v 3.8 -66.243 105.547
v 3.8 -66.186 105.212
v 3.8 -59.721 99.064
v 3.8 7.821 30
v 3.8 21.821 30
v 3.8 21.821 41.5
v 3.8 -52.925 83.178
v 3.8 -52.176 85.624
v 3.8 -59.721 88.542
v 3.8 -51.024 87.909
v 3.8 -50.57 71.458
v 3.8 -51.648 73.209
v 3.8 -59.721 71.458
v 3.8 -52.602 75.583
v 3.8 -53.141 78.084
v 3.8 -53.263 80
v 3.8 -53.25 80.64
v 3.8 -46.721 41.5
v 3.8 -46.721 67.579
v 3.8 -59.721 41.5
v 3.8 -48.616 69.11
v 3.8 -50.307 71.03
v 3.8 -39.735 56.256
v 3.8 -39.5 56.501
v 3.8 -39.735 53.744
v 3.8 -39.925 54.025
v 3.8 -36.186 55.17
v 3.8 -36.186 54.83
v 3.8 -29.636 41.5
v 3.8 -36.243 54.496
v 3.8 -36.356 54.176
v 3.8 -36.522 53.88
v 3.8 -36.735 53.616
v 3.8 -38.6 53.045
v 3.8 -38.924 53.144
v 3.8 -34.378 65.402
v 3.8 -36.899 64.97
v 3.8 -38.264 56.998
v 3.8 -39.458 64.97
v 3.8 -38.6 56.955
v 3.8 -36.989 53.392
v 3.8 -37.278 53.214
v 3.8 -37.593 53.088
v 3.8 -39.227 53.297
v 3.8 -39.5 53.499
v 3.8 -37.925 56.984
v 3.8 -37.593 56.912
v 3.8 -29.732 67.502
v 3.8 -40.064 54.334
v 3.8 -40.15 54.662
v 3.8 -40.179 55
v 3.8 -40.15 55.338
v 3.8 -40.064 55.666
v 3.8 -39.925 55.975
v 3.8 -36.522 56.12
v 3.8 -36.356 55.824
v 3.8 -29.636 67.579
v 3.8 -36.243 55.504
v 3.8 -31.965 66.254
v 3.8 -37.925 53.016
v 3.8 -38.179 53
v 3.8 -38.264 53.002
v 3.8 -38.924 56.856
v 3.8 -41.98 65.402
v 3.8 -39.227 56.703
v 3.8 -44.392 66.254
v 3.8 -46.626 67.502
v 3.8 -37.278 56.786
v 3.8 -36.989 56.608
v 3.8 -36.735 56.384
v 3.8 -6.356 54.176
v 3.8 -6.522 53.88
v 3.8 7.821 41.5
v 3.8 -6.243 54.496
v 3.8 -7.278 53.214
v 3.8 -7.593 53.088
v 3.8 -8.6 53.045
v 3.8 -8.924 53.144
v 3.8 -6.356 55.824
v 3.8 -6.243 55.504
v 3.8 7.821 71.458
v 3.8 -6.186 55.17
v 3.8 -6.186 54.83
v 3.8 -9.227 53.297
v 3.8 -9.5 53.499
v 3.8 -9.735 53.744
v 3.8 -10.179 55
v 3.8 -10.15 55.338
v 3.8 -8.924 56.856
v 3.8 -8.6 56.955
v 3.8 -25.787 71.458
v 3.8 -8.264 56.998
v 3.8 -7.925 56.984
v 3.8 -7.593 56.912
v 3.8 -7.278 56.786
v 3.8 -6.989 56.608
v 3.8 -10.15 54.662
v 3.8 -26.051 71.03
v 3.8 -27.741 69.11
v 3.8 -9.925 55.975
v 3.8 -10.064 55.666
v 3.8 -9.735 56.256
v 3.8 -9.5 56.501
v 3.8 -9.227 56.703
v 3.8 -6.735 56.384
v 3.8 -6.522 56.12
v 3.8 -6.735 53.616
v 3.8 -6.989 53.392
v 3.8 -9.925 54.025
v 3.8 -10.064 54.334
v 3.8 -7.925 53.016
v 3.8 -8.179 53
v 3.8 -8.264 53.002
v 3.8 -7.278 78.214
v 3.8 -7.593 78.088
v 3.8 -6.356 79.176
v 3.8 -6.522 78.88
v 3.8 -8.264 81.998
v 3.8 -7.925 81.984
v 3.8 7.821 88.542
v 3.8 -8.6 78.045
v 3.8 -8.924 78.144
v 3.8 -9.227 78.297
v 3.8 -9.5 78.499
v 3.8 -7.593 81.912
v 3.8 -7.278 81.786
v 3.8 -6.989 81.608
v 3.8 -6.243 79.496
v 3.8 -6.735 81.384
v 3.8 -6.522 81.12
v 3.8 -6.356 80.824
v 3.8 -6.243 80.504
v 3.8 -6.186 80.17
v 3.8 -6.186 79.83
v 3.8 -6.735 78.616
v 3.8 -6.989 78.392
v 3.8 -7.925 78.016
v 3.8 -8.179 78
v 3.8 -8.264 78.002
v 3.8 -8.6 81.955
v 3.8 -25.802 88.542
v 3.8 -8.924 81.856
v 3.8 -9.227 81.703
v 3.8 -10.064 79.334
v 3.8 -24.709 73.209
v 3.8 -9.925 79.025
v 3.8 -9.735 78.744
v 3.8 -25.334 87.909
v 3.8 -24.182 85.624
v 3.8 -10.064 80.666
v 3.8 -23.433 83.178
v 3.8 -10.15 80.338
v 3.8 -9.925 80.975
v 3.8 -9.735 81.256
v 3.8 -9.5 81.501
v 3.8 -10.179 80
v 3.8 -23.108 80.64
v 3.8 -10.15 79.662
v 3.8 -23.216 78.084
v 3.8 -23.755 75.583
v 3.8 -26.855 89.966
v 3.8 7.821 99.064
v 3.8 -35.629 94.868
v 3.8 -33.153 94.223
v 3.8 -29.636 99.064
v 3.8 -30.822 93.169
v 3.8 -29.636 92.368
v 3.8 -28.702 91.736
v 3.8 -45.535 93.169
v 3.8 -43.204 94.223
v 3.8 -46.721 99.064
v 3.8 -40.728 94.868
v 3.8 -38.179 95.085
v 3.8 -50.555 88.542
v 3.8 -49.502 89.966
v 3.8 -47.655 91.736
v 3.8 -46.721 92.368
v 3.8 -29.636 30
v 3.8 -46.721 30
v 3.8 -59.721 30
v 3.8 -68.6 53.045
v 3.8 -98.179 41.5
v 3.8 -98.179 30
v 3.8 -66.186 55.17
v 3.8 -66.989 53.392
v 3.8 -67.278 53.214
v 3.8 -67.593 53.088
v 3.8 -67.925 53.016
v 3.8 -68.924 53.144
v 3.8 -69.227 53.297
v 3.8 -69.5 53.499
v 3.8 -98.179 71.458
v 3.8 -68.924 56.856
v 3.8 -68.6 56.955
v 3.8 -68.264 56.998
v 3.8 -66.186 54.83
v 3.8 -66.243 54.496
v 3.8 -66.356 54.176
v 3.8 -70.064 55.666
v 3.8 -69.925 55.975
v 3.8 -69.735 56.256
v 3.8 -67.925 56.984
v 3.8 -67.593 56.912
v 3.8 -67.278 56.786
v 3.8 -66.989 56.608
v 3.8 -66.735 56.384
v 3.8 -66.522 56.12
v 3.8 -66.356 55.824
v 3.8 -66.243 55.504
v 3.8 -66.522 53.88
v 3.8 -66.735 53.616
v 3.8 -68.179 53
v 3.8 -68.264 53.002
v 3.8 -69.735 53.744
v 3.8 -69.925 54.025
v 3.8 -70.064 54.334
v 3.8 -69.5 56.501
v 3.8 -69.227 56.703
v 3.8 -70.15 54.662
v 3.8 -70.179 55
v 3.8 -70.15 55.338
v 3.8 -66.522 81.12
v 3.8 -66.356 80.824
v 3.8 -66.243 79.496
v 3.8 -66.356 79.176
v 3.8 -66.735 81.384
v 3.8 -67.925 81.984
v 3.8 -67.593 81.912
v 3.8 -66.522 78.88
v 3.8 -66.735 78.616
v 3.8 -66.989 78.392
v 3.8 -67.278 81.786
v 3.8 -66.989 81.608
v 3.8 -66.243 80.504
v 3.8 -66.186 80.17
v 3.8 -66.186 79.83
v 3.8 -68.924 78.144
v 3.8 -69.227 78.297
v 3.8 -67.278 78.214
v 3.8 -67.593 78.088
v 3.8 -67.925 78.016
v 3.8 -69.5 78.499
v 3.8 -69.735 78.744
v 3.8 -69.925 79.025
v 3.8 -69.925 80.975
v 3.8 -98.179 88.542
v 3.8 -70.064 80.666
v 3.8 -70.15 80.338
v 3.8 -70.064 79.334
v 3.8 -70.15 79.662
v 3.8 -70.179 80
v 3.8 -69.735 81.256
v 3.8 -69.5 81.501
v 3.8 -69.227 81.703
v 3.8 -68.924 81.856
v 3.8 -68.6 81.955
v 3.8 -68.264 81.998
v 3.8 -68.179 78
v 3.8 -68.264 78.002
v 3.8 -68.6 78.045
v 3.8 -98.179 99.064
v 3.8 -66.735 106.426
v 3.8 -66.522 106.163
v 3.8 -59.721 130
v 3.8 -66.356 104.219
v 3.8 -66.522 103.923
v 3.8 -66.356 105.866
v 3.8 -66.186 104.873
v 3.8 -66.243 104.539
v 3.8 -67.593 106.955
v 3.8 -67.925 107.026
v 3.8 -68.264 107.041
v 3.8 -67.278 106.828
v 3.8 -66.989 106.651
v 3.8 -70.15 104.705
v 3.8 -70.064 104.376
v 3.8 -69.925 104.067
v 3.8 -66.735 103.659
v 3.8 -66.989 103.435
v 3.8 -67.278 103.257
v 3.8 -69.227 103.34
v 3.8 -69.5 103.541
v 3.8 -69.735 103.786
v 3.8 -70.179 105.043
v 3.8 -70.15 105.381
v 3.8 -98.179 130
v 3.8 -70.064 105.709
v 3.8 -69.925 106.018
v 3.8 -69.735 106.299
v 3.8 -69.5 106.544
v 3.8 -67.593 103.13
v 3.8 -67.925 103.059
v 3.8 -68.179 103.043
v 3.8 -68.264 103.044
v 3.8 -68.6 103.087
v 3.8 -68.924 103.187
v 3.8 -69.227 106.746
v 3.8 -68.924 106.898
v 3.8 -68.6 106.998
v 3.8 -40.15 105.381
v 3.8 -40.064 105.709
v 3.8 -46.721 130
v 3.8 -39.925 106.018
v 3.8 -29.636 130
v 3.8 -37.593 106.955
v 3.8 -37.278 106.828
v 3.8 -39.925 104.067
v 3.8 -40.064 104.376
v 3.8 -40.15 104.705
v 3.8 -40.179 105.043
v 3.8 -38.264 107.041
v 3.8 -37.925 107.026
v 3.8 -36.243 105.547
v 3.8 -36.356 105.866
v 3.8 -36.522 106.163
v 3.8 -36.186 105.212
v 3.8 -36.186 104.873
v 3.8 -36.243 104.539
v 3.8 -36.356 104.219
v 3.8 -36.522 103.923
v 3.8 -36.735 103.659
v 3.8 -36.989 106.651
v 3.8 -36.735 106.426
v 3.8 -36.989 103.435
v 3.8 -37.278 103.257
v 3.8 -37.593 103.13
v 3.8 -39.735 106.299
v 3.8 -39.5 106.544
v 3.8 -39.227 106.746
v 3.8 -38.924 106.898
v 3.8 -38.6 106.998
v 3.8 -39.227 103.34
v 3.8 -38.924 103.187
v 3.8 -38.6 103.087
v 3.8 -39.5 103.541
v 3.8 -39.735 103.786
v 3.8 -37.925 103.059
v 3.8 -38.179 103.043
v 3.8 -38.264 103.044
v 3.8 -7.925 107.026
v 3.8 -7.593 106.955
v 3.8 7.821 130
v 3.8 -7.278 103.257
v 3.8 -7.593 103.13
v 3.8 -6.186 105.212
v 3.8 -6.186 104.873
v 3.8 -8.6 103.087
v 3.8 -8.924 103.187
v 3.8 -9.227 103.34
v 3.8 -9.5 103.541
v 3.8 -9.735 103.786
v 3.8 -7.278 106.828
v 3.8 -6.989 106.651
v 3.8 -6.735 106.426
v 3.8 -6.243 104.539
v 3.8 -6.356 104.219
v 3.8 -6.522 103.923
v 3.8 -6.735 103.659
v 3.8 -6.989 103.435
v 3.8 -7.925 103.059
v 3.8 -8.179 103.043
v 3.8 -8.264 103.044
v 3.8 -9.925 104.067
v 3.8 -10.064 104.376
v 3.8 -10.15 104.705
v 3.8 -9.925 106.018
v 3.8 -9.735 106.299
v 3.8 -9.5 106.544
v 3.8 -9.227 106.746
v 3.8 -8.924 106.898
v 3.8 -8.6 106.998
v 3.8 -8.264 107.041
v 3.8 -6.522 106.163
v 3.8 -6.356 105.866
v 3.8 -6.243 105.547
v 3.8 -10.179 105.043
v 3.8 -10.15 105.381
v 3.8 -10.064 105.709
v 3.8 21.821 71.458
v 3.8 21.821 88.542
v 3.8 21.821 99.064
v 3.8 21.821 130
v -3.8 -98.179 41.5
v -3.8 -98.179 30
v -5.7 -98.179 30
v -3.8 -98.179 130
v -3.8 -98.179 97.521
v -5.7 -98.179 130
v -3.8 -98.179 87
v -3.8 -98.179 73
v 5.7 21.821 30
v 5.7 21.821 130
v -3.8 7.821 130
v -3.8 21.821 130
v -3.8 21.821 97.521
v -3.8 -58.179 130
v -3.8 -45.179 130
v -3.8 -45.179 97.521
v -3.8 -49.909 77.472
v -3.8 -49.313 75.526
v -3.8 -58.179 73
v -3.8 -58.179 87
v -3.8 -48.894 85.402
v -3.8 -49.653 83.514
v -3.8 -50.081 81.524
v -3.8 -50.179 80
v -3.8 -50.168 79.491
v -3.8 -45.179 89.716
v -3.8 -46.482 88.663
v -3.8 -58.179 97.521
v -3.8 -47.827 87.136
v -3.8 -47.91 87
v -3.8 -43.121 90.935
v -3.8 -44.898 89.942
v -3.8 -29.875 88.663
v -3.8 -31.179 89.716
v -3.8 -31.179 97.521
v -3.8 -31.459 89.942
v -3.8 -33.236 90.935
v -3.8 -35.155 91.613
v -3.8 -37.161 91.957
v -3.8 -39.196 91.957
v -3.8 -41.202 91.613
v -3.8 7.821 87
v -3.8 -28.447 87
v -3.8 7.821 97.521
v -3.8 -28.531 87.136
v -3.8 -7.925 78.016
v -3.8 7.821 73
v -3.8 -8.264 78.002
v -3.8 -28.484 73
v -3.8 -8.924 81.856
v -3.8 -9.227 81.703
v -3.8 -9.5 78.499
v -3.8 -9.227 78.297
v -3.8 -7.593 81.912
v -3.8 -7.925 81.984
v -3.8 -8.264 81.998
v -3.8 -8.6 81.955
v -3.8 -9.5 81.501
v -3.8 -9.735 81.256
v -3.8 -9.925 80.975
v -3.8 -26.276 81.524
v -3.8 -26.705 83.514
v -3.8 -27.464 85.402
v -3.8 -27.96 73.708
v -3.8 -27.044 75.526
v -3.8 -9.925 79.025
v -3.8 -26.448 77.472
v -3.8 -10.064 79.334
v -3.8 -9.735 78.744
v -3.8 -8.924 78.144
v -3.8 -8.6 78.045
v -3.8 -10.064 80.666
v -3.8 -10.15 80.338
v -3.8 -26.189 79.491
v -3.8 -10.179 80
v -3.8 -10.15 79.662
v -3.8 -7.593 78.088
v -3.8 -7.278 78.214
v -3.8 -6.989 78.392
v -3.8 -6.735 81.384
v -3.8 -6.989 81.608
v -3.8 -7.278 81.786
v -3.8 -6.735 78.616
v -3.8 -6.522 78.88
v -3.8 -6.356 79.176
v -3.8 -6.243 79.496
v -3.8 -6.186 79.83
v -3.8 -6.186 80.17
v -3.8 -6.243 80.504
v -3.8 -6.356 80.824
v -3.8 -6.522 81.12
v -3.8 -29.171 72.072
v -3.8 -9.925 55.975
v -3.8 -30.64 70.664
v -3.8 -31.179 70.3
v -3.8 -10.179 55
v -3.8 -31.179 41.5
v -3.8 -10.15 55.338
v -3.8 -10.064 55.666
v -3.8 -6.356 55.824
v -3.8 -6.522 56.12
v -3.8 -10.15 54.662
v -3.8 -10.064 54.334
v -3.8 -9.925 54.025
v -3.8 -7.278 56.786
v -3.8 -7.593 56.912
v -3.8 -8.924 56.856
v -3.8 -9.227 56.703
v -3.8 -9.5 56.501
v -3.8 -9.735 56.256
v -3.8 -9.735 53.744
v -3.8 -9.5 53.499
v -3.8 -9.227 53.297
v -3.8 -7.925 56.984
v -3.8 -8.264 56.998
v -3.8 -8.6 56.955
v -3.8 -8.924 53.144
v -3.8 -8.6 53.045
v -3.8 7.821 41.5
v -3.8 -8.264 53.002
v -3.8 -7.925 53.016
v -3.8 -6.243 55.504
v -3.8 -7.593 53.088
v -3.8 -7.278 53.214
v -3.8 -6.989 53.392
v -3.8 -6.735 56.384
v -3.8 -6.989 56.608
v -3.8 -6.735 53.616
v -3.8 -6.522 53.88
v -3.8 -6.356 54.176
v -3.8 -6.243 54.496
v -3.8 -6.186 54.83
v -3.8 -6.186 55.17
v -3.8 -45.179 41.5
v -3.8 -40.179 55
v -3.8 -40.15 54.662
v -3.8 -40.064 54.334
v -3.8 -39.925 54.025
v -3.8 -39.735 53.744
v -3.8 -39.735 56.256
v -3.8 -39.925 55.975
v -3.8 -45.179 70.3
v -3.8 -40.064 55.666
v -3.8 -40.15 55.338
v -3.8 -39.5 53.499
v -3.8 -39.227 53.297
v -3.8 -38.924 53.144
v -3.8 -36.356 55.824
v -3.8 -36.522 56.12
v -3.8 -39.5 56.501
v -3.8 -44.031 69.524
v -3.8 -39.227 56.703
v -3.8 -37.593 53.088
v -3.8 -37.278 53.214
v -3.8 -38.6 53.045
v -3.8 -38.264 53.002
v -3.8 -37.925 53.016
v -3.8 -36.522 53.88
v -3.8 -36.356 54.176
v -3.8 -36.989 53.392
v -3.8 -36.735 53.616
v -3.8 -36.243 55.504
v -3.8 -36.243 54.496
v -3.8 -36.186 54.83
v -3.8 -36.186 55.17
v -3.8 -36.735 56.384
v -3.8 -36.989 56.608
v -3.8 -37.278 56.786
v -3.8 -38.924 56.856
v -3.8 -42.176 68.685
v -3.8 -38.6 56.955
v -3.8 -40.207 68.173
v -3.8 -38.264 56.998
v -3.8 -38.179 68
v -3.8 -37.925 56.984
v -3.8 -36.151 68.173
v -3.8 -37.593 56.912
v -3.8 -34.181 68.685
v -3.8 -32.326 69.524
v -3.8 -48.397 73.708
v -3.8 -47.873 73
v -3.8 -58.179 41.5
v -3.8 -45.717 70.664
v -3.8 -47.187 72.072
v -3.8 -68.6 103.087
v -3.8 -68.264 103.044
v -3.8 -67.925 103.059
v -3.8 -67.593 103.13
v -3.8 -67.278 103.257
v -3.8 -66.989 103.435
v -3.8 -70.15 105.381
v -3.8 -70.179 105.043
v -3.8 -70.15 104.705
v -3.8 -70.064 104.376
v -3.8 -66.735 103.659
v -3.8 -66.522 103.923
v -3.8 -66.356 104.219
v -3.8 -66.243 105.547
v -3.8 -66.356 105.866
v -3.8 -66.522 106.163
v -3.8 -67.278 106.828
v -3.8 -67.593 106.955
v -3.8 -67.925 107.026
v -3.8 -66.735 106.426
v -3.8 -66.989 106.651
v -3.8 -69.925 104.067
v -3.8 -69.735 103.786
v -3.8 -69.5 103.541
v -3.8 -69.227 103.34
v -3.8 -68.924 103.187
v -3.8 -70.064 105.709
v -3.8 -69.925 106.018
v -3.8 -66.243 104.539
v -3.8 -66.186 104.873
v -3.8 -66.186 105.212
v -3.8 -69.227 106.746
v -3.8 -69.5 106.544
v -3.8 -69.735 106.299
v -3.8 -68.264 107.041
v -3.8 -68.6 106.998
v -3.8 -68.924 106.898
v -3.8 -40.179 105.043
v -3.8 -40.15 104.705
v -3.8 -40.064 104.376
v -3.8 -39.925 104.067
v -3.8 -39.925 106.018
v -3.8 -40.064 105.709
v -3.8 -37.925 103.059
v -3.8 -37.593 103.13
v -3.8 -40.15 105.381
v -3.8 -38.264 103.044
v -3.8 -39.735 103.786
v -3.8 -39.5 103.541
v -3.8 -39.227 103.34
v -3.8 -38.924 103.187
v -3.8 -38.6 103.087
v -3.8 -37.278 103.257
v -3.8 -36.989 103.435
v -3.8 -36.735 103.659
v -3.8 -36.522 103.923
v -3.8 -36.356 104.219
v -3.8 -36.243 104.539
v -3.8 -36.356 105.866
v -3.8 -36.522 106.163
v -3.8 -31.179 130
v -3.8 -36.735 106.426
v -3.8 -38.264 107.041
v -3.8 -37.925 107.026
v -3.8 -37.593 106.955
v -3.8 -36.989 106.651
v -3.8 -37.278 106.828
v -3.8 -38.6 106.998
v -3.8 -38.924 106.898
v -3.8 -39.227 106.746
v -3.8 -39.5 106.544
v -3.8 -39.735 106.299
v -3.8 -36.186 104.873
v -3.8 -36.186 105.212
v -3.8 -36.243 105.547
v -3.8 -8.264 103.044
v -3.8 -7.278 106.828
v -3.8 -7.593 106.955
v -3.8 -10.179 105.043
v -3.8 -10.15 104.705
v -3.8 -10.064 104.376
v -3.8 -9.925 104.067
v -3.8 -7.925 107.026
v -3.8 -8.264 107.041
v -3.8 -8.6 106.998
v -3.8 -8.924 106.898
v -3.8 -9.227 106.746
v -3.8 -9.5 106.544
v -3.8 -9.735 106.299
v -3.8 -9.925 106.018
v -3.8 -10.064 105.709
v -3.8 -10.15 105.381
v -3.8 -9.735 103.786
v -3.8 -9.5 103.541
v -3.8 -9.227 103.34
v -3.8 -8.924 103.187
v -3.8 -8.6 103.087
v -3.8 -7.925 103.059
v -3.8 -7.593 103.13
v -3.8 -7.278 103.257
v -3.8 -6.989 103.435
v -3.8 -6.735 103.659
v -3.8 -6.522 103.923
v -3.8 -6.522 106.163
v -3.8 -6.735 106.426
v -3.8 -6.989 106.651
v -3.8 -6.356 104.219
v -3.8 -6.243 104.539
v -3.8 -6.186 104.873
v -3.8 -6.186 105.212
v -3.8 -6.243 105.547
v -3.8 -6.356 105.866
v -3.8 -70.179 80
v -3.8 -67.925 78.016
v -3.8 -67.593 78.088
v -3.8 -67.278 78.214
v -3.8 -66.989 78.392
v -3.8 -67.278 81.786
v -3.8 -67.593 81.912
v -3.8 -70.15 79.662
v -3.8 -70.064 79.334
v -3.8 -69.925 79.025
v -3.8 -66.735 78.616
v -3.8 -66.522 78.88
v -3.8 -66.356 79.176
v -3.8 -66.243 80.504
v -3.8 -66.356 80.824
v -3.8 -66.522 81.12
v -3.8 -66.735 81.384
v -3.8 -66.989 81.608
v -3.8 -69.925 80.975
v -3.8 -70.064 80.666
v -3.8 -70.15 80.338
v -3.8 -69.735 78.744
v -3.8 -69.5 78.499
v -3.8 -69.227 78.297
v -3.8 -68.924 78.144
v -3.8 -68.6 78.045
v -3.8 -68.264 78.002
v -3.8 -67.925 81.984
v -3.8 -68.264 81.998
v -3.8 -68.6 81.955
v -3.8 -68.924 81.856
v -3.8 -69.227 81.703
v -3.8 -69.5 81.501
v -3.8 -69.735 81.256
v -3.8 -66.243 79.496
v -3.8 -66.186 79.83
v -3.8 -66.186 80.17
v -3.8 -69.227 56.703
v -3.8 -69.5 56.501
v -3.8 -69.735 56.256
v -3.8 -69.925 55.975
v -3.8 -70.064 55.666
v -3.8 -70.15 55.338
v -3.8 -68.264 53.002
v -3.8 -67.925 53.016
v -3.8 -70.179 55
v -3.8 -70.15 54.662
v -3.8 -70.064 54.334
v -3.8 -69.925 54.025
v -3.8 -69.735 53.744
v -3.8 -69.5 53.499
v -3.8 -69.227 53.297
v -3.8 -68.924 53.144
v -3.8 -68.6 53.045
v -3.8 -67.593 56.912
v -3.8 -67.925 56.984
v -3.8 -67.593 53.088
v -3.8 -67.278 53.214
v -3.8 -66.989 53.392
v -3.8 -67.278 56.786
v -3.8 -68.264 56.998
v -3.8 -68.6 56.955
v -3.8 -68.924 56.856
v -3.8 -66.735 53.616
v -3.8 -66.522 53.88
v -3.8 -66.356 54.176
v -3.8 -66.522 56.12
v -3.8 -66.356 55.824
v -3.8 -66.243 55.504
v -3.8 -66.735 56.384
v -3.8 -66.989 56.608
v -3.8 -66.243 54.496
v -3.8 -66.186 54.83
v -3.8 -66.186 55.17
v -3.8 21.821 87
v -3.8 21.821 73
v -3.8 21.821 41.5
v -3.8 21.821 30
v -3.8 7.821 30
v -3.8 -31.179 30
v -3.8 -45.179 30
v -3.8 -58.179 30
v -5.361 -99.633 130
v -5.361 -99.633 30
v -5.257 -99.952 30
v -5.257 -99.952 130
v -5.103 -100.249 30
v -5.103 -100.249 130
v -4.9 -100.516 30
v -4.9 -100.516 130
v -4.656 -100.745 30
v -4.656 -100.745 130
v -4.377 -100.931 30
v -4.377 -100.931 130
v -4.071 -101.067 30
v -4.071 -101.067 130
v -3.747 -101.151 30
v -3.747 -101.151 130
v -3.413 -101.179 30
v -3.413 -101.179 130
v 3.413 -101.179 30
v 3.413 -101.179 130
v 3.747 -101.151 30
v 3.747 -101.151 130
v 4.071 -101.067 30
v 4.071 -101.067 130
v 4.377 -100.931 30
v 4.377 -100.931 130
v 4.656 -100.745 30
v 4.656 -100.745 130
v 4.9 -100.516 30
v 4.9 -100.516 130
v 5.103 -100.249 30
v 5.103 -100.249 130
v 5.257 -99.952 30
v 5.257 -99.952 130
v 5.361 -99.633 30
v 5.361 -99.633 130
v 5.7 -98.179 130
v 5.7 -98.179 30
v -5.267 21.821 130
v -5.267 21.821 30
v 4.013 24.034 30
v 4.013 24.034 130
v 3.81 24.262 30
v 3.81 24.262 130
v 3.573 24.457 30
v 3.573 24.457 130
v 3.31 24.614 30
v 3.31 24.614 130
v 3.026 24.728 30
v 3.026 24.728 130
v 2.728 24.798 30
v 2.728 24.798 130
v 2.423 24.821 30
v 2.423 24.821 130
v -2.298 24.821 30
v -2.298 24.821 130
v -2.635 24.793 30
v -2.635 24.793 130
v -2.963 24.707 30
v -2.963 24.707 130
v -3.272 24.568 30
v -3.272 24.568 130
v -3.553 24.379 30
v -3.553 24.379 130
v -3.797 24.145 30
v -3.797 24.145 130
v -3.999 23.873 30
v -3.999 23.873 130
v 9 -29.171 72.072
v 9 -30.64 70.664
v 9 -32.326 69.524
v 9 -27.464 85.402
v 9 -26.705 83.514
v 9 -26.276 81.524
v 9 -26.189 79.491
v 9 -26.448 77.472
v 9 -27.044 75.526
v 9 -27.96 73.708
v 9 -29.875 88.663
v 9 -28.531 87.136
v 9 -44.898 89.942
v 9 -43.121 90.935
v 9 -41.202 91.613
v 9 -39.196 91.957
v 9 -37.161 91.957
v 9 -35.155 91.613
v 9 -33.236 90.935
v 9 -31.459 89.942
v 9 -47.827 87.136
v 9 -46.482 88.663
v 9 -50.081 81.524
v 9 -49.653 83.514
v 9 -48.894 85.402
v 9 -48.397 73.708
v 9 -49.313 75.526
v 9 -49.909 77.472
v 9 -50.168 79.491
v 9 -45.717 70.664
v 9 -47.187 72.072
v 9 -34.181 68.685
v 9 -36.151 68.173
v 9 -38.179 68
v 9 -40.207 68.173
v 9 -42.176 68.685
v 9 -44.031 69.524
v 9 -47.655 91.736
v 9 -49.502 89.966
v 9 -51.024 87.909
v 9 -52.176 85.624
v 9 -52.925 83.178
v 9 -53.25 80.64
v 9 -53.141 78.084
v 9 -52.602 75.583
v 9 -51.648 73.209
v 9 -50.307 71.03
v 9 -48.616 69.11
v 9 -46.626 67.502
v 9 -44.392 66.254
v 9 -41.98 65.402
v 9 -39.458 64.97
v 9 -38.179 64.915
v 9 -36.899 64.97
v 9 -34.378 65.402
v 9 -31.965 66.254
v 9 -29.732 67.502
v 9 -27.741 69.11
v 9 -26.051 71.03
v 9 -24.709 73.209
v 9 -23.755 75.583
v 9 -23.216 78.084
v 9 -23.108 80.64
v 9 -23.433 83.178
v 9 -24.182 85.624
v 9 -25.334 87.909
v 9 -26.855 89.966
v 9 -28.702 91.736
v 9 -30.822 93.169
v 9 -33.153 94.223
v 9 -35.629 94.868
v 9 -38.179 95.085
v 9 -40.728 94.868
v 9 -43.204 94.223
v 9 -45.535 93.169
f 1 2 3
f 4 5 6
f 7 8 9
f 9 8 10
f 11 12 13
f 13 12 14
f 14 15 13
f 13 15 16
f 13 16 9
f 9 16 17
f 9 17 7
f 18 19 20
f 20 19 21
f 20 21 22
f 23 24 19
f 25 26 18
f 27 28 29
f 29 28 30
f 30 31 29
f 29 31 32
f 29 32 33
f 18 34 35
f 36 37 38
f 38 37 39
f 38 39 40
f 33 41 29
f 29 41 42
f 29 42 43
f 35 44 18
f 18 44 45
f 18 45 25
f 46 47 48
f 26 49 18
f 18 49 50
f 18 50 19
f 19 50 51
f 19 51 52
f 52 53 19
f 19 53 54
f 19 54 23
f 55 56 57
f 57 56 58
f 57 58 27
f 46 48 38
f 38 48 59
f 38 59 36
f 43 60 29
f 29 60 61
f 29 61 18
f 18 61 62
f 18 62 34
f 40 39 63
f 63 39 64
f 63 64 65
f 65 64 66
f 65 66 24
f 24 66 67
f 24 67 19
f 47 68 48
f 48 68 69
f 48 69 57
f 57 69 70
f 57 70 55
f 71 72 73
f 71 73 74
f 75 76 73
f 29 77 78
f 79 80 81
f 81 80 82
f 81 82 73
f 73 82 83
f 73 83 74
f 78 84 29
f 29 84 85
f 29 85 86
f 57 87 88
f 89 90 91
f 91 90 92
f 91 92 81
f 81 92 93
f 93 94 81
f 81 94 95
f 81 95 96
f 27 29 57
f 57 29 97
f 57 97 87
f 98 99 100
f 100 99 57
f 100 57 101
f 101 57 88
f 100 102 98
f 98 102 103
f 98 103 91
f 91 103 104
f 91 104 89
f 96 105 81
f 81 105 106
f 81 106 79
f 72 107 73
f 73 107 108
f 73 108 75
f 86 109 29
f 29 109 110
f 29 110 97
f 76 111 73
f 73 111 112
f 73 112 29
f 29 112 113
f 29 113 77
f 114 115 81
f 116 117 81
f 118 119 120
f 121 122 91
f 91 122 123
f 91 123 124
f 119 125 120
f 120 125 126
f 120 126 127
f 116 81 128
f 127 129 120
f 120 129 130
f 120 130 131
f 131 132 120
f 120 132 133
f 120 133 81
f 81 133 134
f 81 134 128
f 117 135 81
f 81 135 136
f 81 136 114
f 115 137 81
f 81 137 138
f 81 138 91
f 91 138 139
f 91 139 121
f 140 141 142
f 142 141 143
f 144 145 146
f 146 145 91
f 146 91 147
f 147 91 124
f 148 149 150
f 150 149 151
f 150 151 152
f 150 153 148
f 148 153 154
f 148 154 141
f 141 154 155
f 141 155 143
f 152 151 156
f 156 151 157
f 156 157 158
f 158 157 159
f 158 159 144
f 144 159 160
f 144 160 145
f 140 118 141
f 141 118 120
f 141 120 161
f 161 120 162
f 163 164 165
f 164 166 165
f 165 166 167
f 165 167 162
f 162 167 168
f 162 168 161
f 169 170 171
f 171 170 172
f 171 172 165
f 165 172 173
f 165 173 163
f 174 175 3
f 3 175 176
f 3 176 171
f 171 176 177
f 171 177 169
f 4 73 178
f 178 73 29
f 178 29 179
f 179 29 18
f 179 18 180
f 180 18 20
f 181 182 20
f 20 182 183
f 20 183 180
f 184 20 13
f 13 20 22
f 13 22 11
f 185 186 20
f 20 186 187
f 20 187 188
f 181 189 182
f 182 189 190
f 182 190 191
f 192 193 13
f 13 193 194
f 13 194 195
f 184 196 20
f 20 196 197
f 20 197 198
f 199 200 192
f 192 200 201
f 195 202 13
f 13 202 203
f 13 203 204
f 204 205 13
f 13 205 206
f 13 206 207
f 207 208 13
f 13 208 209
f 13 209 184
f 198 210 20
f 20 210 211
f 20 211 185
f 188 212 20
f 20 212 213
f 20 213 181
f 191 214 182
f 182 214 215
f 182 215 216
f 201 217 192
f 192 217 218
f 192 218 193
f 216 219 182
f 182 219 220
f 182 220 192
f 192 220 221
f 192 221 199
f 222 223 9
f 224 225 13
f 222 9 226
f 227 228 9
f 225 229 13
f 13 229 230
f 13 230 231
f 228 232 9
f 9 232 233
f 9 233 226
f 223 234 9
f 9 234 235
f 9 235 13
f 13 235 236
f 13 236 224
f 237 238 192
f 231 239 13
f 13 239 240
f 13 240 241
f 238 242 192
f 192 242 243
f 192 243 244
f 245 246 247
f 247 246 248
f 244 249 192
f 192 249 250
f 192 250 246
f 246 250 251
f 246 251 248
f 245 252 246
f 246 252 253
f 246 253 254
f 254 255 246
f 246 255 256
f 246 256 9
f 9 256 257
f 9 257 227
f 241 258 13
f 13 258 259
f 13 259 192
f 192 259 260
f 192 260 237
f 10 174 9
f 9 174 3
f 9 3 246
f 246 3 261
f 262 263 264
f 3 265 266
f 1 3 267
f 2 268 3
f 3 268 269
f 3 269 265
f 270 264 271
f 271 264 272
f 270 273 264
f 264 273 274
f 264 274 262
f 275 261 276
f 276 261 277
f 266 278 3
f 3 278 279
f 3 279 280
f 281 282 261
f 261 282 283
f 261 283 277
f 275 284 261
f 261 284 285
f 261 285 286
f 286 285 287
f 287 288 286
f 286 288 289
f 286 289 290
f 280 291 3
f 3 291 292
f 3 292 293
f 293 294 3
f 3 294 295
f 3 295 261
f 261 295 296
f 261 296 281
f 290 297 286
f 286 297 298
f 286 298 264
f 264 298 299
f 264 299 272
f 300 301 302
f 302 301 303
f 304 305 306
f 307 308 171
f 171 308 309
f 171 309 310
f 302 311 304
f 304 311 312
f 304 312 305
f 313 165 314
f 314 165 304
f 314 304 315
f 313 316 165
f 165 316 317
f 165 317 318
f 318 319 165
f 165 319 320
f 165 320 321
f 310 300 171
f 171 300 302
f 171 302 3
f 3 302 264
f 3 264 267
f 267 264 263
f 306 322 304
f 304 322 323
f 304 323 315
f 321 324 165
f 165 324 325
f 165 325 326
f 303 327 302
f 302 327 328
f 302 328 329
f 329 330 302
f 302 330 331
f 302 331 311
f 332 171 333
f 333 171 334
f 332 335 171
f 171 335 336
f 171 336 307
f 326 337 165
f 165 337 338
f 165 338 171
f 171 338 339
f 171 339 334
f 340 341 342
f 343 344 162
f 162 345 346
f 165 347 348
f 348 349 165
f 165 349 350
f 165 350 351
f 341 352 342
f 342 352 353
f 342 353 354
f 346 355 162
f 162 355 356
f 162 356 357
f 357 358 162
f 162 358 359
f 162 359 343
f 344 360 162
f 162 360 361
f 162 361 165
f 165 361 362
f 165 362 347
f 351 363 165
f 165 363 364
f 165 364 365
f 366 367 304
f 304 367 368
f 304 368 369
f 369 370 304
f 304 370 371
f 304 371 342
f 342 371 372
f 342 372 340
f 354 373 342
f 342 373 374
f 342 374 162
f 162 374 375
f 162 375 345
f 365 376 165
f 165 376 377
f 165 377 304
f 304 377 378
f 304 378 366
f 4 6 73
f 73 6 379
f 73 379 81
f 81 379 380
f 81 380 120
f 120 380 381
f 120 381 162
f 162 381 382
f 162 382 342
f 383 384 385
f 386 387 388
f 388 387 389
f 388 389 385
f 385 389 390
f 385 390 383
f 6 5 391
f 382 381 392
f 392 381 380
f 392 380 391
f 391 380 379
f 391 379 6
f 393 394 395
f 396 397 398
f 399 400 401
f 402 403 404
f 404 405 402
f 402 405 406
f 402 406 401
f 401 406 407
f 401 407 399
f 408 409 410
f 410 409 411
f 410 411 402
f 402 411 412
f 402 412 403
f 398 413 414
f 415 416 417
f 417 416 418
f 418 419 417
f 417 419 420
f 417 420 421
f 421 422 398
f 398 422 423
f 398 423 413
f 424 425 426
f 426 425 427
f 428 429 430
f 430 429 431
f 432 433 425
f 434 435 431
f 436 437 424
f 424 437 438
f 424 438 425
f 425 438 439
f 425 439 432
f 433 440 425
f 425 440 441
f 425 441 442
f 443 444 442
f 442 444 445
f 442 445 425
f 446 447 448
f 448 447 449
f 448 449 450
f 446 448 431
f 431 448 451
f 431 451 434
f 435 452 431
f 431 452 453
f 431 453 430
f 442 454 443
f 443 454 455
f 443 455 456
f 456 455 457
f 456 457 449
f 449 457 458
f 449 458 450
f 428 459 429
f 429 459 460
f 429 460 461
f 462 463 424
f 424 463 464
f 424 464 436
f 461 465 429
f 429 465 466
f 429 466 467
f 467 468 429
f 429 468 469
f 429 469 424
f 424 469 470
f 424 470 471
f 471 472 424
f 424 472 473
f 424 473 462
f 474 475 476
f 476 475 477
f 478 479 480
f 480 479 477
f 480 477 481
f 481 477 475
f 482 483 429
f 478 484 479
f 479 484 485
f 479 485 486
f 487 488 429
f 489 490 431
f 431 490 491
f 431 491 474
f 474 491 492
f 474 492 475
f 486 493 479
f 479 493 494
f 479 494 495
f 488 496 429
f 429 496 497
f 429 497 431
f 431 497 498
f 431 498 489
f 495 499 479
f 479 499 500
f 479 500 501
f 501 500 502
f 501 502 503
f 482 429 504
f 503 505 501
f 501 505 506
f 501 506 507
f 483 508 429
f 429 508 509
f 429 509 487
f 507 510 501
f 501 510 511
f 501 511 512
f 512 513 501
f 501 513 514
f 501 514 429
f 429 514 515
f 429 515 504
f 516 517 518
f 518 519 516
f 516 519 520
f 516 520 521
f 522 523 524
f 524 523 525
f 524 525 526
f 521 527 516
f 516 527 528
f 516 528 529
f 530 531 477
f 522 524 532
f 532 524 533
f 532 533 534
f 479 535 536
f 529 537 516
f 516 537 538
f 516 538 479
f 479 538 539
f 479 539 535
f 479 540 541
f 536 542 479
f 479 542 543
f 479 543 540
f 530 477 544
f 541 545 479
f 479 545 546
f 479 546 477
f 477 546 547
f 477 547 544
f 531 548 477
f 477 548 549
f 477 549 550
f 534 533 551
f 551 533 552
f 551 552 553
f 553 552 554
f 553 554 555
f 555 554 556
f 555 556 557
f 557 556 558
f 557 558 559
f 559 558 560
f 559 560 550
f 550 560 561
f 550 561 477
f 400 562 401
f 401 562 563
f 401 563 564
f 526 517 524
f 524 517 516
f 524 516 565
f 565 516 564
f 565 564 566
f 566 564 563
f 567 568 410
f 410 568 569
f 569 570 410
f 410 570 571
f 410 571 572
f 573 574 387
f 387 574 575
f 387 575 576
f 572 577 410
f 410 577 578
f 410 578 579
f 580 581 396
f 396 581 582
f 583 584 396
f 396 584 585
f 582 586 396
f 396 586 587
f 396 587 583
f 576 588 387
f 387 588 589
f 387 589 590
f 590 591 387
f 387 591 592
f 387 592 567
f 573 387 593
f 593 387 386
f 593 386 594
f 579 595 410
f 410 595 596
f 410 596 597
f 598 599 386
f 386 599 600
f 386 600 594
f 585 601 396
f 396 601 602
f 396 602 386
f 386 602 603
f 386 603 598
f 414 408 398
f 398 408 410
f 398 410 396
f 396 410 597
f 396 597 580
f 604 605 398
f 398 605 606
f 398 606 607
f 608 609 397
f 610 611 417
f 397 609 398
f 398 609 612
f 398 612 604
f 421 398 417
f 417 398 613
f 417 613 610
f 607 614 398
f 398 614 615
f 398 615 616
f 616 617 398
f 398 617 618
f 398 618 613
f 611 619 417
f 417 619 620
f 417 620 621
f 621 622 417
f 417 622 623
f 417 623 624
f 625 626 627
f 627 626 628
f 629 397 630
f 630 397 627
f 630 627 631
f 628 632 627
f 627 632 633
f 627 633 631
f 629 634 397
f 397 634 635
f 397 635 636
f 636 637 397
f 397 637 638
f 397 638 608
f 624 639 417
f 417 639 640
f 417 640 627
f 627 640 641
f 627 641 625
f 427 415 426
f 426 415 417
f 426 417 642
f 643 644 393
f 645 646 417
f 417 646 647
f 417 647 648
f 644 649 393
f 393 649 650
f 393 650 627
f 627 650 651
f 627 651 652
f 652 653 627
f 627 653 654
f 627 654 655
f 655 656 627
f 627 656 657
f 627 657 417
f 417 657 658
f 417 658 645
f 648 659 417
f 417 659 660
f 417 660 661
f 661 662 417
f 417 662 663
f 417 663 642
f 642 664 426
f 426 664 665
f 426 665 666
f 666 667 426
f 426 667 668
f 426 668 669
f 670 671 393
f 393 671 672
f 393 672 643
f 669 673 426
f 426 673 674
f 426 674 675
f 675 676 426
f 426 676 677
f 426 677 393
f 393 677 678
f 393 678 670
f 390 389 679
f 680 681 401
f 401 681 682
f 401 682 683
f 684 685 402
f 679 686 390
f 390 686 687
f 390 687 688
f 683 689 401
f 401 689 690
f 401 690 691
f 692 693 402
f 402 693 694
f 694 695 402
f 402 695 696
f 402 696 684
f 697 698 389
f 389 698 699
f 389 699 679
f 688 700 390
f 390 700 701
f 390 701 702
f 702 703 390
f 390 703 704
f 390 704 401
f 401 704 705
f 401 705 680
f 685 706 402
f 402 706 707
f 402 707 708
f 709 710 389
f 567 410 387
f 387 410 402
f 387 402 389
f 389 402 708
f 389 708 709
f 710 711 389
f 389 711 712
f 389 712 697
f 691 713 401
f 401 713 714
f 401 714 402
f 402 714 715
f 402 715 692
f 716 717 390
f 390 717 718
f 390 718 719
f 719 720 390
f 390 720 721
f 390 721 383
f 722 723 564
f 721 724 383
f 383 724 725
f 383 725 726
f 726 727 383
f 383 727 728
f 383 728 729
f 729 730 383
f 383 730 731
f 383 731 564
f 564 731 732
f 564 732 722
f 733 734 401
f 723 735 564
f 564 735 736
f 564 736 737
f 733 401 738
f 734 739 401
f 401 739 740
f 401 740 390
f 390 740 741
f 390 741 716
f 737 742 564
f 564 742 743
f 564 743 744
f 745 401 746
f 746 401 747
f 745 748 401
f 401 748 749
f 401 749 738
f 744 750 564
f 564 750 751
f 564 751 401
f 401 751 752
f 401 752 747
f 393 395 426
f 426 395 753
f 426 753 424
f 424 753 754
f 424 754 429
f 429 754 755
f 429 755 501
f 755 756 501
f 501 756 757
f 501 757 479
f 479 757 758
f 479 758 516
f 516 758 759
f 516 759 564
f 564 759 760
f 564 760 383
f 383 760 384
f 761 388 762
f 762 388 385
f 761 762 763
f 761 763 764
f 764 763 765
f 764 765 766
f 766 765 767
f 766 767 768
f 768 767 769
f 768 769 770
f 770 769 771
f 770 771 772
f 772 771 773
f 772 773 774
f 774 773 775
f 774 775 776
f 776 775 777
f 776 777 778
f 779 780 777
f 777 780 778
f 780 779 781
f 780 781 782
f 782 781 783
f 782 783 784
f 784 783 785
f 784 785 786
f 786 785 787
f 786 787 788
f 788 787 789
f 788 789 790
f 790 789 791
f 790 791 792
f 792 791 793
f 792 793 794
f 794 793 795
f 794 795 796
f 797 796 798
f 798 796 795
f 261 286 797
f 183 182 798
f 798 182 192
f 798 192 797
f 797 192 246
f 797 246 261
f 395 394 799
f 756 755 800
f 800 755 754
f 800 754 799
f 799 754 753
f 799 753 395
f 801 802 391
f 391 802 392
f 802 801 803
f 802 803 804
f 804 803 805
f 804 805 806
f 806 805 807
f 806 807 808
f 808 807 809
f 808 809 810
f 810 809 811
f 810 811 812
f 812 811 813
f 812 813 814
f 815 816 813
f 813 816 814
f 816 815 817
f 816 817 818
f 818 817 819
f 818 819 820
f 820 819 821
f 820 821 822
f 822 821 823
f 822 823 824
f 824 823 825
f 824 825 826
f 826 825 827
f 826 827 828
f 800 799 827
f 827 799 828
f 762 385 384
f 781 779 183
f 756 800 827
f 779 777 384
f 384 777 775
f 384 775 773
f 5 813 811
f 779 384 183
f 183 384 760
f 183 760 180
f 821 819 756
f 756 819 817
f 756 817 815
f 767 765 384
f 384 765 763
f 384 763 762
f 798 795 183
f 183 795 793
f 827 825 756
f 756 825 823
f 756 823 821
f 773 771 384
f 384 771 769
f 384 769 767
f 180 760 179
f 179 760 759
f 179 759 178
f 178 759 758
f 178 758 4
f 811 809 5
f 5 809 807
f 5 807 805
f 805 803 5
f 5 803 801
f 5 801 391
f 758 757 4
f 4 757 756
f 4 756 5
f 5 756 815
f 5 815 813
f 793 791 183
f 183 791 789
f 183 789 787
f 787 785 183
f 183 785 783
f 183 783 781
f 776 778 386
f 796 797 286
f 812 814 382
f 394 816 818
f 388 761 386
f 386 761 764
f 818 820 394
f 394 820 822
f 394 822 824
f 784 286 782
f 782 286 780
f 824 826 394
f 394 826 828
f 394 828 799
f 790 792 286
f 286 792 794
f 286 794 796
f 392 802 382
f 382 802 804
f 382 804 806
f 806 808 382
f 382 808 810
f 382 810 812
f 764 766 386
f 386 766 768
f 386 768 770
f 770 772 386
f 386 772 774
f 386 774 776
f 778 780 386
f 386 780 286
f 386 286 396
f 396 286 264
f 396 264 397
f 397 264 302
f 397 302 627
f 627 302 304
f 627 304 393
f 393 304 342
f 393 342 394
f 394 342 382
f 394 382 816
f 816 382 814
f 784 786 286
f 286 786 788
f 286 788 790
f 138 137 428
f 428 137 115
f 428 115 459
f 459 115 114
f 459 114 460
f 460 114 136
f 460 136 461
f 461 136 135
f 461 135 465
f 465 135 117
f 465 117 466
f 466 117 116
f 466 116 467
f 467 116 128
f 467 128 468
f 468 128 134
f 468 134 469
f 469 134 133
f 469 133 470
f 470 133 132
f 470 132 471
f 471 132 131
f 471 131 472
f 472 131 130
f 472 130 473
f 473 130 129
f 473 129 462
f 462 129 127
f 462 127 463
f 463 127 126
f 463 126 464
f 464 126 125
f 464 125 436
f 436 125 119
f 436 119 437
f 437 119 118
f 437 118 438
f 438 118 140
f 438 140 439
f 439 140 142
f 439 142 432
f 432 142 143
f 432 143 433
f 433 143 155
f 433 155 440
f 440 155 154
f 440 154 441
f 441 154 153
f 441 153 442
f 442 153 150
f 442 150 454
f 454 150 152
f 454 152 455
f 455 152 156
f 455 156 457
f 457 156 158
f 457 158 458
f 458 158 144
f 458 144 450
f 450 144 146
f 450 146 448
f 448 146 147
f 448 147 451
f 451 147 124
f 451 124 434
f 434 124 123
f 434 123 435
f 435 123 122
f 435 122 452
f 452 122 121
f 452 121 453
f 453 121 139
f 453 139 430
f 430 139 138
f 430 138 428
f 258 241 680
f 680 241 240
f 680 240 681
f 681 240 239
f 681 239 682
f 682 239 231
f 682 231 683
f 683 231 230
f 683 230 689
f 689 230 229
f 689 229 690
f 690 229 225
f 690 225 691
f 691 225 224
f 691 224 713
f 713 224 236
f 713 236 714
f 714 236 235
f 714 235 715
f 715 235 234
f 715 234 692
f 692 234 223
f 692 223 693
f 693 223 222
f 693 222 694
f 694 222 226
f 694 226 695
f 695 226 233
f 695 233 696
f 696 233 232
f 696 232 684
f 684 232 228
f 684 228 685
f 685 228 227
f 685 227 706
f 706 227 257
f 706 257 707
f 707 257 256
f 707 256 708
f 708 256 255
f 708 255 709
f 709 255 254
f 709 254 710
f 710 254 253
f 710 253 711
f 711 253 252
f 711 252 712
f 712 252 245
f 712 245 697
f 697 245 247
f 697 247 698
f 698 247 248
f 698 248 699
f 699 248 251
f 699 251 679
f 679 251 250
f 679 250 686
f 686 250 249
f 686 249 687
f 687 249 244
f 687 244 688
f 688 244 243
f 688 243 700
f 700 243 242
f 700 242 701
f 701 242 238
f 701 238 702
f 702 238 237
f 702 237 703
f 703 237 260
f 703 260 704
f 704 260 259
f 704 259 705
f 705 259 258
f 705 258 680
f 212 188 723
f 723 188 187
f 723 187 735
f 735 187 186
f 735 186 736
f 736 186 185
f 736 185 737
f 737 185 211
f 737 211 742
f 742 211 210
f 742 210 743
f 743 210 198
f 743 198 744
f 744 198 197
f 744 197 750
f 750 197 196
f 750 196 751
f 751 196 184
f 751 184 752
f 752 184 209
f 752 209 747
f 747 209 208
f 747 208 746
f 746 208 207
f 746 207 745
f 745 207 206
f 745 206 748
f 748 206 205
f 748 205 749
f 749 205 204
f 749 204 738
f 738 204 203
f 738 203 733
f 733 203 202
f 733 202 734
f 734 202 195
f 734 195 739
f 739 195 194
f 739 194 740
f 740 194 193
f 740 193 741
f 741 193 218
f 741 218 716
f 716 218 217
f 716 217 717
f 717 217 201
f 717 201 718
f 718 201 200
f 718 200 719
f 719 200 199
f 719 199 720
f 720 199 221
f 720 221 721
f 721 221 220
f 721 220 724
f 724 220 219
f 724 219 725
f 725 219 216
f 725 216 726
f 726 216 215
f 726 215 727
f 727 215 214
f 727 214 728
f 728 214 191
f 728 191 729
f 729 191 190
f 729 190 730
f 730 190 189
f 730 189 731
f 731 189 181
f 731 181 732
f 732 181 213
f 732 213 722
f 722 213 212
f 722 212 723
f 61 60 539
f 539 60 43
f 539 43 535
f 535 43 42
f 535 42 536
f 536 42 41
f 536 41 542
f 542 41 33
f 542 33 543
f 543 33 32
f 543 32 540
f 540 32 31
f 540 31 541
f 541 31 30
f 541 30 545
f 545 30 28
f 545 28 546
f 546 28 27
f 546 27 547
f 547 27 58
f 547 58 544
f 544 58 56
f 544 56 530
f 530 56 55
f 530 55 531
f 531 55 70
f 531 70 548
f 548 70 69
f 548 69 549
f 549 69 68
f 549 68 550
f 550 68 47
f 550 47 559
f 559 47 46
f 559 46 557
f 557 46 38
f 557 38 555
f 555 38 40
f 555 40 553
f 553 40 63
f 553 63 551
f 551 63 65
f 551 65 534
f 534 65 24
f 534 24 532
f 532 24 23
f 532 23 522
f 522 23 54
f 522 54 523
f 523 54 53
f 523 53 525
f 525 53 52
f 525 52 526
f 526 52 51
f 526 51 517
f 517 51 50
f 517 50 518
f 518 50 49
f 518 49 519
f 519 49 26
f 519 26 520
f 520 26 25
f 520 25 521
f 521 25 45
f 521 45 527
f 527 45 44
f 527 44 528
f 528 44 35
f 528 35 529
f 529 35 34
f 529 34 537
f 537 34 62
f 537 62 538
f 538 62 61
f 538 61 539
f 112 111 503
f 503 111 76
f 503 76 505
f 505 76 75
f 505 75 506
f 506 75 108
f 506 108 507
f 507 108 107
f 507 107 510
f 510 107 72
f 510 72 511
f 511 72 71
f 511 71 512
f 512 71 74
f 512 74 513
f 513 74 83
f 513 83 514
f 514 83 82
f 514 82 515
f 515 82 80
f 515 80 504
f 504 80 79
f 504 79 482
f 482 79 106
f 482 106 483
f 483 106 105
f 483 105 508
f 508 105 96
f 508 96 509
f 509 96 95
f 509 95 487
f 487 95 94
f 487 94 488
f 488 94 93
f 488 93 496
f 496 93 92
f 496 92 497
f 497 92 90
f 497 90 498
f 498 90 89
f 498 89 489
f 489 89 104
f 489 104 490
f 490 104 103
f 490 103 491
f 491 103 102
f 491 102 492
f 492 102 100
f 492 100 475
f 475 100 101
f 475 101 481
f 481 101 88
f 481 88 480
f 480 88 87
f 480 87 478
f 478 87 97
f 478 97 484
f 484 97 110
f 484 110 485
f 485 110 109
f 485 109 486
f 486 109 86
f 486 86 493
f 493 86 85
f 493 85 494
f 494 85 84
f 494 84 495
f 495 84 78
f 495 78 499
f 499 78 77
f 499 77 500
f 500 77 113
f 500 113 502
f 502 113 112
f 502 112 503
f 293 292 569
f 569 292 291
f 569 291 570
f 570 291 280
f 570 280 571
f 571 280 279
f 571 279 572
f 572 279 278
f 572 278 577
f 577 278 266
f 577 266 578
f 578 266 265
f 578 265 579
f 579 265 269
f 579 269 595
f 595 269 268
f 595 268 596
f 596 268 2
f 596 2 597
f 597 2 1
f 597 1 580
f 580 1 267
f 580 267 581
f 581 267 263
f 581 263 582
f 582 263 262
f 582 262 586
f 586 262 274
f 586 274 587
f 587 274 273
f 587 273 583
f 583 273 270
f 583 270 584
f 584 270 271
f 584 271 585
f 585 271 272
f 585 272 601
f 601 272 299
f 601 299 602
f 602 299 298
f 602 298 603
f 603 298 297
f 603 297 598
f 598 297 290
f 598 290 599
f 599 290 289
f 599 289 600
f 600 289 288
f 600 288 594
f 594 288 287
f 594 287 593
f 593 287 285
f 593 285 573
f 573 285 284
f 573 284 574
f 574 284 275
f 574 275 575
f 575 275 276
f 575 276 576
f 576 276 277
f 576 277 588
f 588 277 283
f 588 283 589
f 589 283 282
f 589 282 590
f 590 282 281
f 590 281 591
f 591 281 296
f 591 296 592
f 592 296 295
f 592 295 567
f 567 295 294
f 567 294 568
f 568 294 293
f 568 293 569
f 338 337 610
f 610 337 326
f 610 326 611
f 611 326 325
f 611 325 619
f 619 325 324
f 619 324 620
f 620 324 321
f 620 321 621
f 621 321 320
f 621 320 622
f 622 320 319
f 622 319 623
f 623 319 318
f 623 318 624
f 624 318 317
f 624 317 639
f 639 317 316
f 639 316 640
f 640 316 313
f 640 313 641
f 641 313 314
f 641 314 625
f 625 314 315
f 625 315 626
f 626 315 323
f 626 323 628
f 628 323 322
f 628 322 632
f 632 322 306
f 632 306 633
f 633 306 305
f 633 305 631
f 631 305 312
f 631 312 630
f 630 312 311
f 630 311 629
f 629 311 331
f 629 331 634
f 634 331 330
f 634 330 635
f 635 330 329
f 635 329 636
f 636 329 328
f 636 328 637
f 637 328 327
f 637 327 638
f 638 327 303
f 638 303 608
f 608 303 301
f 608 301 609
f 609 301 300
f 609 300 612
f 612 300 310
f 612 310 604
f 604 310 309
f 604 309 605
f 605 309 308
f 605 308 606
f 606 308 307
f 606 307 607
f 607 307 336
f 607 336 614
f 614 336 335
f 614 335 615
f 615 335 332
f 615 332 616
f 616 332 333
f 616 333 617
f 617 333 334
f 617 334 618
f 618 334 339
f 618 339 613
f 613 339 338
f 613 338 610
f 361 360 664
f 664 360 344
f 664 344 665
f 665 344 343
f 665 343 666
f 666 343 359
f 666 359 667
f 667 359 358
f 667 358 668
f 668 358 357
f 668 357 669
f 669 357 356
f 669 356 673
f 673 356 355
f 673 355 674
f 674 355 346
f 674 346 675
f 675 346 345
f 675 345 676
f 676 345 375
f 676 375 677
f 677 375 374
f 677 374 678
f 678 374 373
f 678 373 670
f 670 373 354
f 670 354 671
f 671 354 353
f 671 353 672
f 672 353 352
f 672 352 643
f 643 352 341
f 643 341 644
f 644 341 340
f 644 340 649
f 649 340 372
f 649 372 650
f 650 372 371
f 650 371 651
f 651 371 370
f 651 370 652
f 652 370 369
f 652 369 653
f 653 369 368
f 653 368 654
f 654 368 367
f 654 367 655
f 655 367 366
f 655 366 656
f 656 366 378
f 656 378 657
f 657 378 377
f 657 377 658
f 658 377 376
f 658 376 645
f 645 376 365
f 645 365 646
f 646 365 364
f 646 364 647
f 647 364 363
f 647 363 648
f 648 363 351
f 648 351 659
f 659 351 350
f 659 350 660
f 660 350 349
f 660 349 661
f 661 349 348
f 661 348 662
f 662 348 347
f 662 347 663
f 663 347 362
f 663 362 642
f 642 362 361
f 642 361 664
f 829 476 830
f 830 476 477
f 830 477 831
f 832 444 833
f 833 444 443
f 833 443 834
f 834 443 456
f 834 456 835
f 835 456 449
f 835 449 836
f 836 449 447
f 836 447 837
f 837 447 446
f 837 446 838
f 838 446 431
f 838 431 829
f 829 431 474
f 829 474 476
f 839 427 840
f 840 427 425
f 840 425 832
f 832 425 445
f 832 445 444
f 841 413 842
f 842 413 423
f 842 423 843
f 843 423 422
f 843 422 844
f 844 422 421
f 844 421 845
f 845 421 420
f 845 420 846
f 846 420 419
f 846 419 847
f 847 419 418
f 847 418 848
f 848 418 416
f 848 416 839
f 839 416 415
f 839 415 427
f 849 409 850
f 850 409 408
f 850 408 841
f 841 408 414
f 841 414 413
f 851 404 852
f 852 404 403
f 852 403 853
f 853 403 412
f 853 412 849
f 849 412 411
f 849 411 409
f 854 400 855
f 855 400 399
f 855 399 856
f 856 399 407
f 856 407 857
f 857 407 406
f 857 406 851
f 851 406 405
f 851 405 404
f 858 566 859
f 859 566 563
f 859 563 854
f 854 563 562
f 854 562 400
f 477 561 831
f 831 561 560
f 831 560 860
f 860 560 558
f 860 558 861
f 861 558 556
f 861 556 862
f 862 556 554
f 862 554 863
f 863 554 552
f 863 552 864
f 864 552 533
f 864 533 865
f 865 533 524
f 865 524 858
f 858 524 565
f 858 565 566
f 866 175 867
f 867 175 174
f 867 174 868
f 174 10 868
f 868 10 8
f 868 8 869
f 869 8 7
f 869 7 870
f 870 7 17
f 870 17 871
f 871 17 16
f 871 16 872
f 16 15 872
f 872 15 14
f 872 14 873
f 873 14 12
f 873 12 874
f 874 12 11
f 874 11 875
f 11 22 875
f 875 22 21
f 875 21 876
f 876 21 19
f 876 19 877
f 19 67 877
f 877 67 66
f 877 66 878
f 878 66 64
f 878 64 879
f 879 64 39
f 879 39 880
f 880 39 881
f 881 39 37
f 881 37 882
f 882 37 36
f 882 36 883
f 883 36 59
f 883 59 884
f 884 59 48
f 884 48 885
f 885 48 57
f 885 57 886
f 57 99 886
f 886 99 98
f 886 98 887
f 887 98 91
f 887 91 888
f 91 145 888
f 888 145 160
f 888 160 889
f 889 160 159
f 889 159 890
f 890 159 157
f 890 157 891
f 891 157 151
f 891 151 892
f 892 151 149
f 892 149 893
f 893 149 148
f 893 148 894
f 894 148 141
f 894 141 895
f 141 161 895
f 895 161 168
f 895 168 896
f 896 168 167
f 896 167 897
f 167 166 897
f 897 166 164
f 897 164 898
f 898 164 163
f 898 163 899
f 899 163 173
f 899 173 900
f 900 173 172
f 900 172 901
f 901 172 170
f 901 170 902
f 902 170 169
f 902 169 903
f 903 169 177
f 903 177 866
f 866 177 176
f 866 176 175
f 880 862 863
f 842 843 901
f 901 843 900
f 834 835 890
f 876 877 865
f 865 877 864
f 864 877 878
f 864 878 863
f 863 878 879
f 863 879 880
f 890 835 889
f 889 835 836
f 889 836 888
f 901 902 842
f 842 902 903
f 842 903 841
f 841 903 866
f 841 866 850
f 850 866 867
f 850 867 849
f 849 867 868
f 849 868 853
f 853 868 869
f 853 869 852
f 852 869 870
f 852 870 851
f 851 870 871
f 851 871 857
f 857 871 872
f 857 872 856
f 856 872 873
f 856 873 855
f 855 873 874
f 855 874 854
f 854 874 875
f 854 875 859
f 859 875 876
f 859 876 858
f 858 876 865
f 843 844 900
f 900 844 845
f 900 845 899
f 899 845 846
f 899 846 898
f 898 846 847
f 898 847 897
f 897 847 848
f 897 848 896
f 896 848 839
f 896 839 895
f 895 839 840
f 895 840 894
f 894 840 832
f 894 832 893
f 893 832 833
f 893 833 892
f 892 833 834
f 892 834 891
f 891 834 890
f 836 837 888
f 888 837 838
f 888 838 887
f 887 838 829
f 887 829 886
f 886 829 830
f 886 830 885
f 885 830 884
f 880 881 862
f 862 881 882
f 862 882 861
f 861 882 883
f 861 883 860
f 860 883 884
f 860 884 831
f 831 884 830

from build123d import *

# Parameters (mm, degrees)
RESSALTO_EXTRUS_O1_DEPTH   = 160
ESBO_O2_W                  = 7.6
ESBO_O2_H                  = 120
CORTE_EXTRUS_O1_DEPTH      = 30
CORTE_EXTRUS_O2_DEPTH      = 30
F_3DSKETCH3_R              = 2
CORTE_EXTRUS_O3_DEPTH      = 70
ESBO_O3_W                  = 45.015344868
ESBO_O3_H                  = 129.478543367
ESBO_O3_W_2                = 37.192593828
CORTE_EXTRUS_O4_DEPTH      = 31.510345968
CORTE_EXTRUS_O4_DEPTH_BACK = 38
ESBO_O4_R                  = 12
CORTE_EXTRUS_O5_DEPTH      = 52.510345968
CORTE_EXTRUS_O5_DEPTH_BACK = 54
ESBO_O5_R                  = 15.084668413
ESBO_O5_R_2                = 12
RESSALTO_EXTRUS_O3_DEPTH   = 9


with BuildPart() as part:
    # Esboço1 → Ressalto-extrusão1 (new body)
    with BuildSketch(Plane.XY):
        with BuildLine():
            Line((-3.8, 21.821375341), (-3.8, -98.178624659))
            Line((-3.8, -98.178624659), (-5.7, -98.178624659))
            Line((-5.7, -98.178624659), (-5.360626179, -99.63308389))
            ThreePointArc((-5.360626179, -99.63308389), (-4.656141559, -100.745296045), (-3.41294376, -101.178624659))
            Line((-3.41294376, -101.178624659), (3.41294376, -101.178624659))
            ThreePointArc((3.41294376, -101.178624659), (4.656141559, -100.745296045), (5.360626179, -99.63308389))
            Line((5.360626179, -99.63308389), (5.7, -98.178624659))
            Line((5.7, -98.178624659), (3.8, -98.178624659))
            Line((3.8, -98.178624659), (3.8, 21.821375341))
            Line((3.8, 21.821375341), (5.7, 21.821375341))
            Line((5.7, 21.821375341), (4.013268169, 24.033911877))
            ThreePointArc((4.013268169, 24.033911877), (3.310139149, 24.613730366), (2.422747768, 24.821375341))
            Line((2.422747768, 24.821375341), (-2.297792791, 24.821375341))
            ThreePointArc((-2.297792791, 24.821375341), (-3.27177376, 24.568189891), (-3.999156919, 23.872736414))
            Line((-3.999156919, 23.872736414), (-5.266799243, 21.821375341))
            Line((-5.266799243, 21.821375341), (-3.8, 21.821375341))
        make_face()
    extrude(amount=RESSALTO_EXTRUS_O1_DEPTH)

    # Esboço2 → Corte-extrusão1 (cut)
    with BuildSketch(Plane.XY):
        with Locations((0, -38.178624659)):
            Rectangle(ESBO_O2_W, ESBO_O2_H)
    extrude(amount=CORTE_EXTRUS_O1_DEPTH, mode=Mode.SUBTRACT)

    # 3DSketch2 → Corte-extrusão2 (cut)
    with BuildSketch(Plane(origin=(-3.8, 21.821375341, 160), x_dir=(0.0632066956560733, -0.9980004577274705, 0), z_dir=(0, 0, -1))):
        Polygon((0, 0), (0.480370887, -7.584803479), (120.240425814, 0), (119.760054927, 7.584803479), align=None)
    extrude(amount=CORTE_EXTRUS_O2_DEPTH, mode=Mode.SUBTRACT)

    # 3DSketch3 → Corte-extrusão3 (cut)
    with BuildSketch(Plane(origin=(3.8, -38.178624659, 80), x_dir=(0, 0.7676852805184269, 0.6408270516101394), z_dir=(1, 0, 0))):
        with Locations(Location((0, 0, 0), (0, 0, 140.146481665))):
            Circle(F_3DSKETCH3_R)
        with Locations(Location((23.030558416, -19.224811548, 0), (0, 0, 140.146481665))):
            Circle(F_3DSKETCH3_R)
        with Locations(Location((-23.030558416, 19.224811548, 0), (0, 0, 140.146481665))):
            Circle(F_3DSKETCH3_R)
        with Locations(Location((-39.051234706, 0.032679535, 0), (0, 0, 140.146481665))):
            Circle(F_3DSKETCH3_R)
        with Locations(Location((-16.02067629, -19.192132013, 0), (0, 0, 140.146481665))):
            Circle(F_3DSKETCH3_R)
        with Locations(Location((7.009882125, -38.416943561, 0), (0, 0, 140.146481665))):
            Circle(F_3DSKETCH3_R)
        with Locations(Location((-6.982602808, 38.449623097, 0), (0, 0, 140.146481665))):
            Circle(F_3DSKETCH3_R)
        with Locations(Location((16.047955607, 19.224811548, 0), (0, 0, 140.146481665))):
            Circle(F_3DSKETCH3_R)
        with Locations(Location((39.078514023, 0, 0), (0, 0, 140.146481665))):
            Circle(F_3DSKETCH3_R)
    extrude(amount=-CORTE_EXTRUS_O3_DEPTH, mode=Mode.SUBTRACT)

    # Esboço3 → Corte-extrusão4 (cut, two sides)
    with BuildSketch(Plane(origin=(0, 0, 0), x_dir=(0, 0, -1), z_dir=(1, 0, 0))) as corte_extrus_o4_sk:
        with Locations((-7.492327566, -39.917896343)):
            Rectangle(ESBO_O3_W, ESBO_O3_H)
        with Locations((-148.596296914, -39.917896343)):
            Rectangle(ESBO_O3_W_2, ESBO_O3_H)
    extrude(amount=CORTE_EXTRUS_O4_DEPTH, mode=Mode.SUBTRACT)
    extrude(corte_extrus_o4_sk.sketch, amount=-CORTE_EXTRUS_O4_DEPTH_BACK, mode=Mode.SUBTRACT)

    # Esboço4 → Corte-extrusão5 (cut, two sides)
    with BuildSketch(Plane(origin=(0, 0, 0), x_dir=(0, 0, -1), z_dir=(1, 0, 0))) as corte_extrus_o5_sk:
        with Locations(Location((-80, -38.178624659, 0), (0, 0, 270))):
            Circle(ESBO_O4_R)
    extrude(amount=CORTE_EXTRUS_O5_DEPTH, mode=Mode.SUBTRACT)
    extrude(corte_extrus_o5_sk.sketch, amount=-CORTE_EXTRUS_O5_DEPTH_BACK, mode=Mode.SUBTRACT)

    # Esboço5 → Ressalto-extrusão3 (add)
    with BuildSketch(Plane(origin=(0, 0, 0), x_dir=(0, 0, -1), z_dir=(1, 0, 0))):
        with Locations(Location((-80, -38.178624659, 0), (0, 0, 270))):
            Circle(ESBO_O5_R)
        with Locations((-80, -38.178624659)):
            Circle(ESBO_O5_R_2, mode=Mode.SUBTRACT)
    extrude(amount=RESSALTO_EXTRUS_O3_DEPTH)


solid = part.part
